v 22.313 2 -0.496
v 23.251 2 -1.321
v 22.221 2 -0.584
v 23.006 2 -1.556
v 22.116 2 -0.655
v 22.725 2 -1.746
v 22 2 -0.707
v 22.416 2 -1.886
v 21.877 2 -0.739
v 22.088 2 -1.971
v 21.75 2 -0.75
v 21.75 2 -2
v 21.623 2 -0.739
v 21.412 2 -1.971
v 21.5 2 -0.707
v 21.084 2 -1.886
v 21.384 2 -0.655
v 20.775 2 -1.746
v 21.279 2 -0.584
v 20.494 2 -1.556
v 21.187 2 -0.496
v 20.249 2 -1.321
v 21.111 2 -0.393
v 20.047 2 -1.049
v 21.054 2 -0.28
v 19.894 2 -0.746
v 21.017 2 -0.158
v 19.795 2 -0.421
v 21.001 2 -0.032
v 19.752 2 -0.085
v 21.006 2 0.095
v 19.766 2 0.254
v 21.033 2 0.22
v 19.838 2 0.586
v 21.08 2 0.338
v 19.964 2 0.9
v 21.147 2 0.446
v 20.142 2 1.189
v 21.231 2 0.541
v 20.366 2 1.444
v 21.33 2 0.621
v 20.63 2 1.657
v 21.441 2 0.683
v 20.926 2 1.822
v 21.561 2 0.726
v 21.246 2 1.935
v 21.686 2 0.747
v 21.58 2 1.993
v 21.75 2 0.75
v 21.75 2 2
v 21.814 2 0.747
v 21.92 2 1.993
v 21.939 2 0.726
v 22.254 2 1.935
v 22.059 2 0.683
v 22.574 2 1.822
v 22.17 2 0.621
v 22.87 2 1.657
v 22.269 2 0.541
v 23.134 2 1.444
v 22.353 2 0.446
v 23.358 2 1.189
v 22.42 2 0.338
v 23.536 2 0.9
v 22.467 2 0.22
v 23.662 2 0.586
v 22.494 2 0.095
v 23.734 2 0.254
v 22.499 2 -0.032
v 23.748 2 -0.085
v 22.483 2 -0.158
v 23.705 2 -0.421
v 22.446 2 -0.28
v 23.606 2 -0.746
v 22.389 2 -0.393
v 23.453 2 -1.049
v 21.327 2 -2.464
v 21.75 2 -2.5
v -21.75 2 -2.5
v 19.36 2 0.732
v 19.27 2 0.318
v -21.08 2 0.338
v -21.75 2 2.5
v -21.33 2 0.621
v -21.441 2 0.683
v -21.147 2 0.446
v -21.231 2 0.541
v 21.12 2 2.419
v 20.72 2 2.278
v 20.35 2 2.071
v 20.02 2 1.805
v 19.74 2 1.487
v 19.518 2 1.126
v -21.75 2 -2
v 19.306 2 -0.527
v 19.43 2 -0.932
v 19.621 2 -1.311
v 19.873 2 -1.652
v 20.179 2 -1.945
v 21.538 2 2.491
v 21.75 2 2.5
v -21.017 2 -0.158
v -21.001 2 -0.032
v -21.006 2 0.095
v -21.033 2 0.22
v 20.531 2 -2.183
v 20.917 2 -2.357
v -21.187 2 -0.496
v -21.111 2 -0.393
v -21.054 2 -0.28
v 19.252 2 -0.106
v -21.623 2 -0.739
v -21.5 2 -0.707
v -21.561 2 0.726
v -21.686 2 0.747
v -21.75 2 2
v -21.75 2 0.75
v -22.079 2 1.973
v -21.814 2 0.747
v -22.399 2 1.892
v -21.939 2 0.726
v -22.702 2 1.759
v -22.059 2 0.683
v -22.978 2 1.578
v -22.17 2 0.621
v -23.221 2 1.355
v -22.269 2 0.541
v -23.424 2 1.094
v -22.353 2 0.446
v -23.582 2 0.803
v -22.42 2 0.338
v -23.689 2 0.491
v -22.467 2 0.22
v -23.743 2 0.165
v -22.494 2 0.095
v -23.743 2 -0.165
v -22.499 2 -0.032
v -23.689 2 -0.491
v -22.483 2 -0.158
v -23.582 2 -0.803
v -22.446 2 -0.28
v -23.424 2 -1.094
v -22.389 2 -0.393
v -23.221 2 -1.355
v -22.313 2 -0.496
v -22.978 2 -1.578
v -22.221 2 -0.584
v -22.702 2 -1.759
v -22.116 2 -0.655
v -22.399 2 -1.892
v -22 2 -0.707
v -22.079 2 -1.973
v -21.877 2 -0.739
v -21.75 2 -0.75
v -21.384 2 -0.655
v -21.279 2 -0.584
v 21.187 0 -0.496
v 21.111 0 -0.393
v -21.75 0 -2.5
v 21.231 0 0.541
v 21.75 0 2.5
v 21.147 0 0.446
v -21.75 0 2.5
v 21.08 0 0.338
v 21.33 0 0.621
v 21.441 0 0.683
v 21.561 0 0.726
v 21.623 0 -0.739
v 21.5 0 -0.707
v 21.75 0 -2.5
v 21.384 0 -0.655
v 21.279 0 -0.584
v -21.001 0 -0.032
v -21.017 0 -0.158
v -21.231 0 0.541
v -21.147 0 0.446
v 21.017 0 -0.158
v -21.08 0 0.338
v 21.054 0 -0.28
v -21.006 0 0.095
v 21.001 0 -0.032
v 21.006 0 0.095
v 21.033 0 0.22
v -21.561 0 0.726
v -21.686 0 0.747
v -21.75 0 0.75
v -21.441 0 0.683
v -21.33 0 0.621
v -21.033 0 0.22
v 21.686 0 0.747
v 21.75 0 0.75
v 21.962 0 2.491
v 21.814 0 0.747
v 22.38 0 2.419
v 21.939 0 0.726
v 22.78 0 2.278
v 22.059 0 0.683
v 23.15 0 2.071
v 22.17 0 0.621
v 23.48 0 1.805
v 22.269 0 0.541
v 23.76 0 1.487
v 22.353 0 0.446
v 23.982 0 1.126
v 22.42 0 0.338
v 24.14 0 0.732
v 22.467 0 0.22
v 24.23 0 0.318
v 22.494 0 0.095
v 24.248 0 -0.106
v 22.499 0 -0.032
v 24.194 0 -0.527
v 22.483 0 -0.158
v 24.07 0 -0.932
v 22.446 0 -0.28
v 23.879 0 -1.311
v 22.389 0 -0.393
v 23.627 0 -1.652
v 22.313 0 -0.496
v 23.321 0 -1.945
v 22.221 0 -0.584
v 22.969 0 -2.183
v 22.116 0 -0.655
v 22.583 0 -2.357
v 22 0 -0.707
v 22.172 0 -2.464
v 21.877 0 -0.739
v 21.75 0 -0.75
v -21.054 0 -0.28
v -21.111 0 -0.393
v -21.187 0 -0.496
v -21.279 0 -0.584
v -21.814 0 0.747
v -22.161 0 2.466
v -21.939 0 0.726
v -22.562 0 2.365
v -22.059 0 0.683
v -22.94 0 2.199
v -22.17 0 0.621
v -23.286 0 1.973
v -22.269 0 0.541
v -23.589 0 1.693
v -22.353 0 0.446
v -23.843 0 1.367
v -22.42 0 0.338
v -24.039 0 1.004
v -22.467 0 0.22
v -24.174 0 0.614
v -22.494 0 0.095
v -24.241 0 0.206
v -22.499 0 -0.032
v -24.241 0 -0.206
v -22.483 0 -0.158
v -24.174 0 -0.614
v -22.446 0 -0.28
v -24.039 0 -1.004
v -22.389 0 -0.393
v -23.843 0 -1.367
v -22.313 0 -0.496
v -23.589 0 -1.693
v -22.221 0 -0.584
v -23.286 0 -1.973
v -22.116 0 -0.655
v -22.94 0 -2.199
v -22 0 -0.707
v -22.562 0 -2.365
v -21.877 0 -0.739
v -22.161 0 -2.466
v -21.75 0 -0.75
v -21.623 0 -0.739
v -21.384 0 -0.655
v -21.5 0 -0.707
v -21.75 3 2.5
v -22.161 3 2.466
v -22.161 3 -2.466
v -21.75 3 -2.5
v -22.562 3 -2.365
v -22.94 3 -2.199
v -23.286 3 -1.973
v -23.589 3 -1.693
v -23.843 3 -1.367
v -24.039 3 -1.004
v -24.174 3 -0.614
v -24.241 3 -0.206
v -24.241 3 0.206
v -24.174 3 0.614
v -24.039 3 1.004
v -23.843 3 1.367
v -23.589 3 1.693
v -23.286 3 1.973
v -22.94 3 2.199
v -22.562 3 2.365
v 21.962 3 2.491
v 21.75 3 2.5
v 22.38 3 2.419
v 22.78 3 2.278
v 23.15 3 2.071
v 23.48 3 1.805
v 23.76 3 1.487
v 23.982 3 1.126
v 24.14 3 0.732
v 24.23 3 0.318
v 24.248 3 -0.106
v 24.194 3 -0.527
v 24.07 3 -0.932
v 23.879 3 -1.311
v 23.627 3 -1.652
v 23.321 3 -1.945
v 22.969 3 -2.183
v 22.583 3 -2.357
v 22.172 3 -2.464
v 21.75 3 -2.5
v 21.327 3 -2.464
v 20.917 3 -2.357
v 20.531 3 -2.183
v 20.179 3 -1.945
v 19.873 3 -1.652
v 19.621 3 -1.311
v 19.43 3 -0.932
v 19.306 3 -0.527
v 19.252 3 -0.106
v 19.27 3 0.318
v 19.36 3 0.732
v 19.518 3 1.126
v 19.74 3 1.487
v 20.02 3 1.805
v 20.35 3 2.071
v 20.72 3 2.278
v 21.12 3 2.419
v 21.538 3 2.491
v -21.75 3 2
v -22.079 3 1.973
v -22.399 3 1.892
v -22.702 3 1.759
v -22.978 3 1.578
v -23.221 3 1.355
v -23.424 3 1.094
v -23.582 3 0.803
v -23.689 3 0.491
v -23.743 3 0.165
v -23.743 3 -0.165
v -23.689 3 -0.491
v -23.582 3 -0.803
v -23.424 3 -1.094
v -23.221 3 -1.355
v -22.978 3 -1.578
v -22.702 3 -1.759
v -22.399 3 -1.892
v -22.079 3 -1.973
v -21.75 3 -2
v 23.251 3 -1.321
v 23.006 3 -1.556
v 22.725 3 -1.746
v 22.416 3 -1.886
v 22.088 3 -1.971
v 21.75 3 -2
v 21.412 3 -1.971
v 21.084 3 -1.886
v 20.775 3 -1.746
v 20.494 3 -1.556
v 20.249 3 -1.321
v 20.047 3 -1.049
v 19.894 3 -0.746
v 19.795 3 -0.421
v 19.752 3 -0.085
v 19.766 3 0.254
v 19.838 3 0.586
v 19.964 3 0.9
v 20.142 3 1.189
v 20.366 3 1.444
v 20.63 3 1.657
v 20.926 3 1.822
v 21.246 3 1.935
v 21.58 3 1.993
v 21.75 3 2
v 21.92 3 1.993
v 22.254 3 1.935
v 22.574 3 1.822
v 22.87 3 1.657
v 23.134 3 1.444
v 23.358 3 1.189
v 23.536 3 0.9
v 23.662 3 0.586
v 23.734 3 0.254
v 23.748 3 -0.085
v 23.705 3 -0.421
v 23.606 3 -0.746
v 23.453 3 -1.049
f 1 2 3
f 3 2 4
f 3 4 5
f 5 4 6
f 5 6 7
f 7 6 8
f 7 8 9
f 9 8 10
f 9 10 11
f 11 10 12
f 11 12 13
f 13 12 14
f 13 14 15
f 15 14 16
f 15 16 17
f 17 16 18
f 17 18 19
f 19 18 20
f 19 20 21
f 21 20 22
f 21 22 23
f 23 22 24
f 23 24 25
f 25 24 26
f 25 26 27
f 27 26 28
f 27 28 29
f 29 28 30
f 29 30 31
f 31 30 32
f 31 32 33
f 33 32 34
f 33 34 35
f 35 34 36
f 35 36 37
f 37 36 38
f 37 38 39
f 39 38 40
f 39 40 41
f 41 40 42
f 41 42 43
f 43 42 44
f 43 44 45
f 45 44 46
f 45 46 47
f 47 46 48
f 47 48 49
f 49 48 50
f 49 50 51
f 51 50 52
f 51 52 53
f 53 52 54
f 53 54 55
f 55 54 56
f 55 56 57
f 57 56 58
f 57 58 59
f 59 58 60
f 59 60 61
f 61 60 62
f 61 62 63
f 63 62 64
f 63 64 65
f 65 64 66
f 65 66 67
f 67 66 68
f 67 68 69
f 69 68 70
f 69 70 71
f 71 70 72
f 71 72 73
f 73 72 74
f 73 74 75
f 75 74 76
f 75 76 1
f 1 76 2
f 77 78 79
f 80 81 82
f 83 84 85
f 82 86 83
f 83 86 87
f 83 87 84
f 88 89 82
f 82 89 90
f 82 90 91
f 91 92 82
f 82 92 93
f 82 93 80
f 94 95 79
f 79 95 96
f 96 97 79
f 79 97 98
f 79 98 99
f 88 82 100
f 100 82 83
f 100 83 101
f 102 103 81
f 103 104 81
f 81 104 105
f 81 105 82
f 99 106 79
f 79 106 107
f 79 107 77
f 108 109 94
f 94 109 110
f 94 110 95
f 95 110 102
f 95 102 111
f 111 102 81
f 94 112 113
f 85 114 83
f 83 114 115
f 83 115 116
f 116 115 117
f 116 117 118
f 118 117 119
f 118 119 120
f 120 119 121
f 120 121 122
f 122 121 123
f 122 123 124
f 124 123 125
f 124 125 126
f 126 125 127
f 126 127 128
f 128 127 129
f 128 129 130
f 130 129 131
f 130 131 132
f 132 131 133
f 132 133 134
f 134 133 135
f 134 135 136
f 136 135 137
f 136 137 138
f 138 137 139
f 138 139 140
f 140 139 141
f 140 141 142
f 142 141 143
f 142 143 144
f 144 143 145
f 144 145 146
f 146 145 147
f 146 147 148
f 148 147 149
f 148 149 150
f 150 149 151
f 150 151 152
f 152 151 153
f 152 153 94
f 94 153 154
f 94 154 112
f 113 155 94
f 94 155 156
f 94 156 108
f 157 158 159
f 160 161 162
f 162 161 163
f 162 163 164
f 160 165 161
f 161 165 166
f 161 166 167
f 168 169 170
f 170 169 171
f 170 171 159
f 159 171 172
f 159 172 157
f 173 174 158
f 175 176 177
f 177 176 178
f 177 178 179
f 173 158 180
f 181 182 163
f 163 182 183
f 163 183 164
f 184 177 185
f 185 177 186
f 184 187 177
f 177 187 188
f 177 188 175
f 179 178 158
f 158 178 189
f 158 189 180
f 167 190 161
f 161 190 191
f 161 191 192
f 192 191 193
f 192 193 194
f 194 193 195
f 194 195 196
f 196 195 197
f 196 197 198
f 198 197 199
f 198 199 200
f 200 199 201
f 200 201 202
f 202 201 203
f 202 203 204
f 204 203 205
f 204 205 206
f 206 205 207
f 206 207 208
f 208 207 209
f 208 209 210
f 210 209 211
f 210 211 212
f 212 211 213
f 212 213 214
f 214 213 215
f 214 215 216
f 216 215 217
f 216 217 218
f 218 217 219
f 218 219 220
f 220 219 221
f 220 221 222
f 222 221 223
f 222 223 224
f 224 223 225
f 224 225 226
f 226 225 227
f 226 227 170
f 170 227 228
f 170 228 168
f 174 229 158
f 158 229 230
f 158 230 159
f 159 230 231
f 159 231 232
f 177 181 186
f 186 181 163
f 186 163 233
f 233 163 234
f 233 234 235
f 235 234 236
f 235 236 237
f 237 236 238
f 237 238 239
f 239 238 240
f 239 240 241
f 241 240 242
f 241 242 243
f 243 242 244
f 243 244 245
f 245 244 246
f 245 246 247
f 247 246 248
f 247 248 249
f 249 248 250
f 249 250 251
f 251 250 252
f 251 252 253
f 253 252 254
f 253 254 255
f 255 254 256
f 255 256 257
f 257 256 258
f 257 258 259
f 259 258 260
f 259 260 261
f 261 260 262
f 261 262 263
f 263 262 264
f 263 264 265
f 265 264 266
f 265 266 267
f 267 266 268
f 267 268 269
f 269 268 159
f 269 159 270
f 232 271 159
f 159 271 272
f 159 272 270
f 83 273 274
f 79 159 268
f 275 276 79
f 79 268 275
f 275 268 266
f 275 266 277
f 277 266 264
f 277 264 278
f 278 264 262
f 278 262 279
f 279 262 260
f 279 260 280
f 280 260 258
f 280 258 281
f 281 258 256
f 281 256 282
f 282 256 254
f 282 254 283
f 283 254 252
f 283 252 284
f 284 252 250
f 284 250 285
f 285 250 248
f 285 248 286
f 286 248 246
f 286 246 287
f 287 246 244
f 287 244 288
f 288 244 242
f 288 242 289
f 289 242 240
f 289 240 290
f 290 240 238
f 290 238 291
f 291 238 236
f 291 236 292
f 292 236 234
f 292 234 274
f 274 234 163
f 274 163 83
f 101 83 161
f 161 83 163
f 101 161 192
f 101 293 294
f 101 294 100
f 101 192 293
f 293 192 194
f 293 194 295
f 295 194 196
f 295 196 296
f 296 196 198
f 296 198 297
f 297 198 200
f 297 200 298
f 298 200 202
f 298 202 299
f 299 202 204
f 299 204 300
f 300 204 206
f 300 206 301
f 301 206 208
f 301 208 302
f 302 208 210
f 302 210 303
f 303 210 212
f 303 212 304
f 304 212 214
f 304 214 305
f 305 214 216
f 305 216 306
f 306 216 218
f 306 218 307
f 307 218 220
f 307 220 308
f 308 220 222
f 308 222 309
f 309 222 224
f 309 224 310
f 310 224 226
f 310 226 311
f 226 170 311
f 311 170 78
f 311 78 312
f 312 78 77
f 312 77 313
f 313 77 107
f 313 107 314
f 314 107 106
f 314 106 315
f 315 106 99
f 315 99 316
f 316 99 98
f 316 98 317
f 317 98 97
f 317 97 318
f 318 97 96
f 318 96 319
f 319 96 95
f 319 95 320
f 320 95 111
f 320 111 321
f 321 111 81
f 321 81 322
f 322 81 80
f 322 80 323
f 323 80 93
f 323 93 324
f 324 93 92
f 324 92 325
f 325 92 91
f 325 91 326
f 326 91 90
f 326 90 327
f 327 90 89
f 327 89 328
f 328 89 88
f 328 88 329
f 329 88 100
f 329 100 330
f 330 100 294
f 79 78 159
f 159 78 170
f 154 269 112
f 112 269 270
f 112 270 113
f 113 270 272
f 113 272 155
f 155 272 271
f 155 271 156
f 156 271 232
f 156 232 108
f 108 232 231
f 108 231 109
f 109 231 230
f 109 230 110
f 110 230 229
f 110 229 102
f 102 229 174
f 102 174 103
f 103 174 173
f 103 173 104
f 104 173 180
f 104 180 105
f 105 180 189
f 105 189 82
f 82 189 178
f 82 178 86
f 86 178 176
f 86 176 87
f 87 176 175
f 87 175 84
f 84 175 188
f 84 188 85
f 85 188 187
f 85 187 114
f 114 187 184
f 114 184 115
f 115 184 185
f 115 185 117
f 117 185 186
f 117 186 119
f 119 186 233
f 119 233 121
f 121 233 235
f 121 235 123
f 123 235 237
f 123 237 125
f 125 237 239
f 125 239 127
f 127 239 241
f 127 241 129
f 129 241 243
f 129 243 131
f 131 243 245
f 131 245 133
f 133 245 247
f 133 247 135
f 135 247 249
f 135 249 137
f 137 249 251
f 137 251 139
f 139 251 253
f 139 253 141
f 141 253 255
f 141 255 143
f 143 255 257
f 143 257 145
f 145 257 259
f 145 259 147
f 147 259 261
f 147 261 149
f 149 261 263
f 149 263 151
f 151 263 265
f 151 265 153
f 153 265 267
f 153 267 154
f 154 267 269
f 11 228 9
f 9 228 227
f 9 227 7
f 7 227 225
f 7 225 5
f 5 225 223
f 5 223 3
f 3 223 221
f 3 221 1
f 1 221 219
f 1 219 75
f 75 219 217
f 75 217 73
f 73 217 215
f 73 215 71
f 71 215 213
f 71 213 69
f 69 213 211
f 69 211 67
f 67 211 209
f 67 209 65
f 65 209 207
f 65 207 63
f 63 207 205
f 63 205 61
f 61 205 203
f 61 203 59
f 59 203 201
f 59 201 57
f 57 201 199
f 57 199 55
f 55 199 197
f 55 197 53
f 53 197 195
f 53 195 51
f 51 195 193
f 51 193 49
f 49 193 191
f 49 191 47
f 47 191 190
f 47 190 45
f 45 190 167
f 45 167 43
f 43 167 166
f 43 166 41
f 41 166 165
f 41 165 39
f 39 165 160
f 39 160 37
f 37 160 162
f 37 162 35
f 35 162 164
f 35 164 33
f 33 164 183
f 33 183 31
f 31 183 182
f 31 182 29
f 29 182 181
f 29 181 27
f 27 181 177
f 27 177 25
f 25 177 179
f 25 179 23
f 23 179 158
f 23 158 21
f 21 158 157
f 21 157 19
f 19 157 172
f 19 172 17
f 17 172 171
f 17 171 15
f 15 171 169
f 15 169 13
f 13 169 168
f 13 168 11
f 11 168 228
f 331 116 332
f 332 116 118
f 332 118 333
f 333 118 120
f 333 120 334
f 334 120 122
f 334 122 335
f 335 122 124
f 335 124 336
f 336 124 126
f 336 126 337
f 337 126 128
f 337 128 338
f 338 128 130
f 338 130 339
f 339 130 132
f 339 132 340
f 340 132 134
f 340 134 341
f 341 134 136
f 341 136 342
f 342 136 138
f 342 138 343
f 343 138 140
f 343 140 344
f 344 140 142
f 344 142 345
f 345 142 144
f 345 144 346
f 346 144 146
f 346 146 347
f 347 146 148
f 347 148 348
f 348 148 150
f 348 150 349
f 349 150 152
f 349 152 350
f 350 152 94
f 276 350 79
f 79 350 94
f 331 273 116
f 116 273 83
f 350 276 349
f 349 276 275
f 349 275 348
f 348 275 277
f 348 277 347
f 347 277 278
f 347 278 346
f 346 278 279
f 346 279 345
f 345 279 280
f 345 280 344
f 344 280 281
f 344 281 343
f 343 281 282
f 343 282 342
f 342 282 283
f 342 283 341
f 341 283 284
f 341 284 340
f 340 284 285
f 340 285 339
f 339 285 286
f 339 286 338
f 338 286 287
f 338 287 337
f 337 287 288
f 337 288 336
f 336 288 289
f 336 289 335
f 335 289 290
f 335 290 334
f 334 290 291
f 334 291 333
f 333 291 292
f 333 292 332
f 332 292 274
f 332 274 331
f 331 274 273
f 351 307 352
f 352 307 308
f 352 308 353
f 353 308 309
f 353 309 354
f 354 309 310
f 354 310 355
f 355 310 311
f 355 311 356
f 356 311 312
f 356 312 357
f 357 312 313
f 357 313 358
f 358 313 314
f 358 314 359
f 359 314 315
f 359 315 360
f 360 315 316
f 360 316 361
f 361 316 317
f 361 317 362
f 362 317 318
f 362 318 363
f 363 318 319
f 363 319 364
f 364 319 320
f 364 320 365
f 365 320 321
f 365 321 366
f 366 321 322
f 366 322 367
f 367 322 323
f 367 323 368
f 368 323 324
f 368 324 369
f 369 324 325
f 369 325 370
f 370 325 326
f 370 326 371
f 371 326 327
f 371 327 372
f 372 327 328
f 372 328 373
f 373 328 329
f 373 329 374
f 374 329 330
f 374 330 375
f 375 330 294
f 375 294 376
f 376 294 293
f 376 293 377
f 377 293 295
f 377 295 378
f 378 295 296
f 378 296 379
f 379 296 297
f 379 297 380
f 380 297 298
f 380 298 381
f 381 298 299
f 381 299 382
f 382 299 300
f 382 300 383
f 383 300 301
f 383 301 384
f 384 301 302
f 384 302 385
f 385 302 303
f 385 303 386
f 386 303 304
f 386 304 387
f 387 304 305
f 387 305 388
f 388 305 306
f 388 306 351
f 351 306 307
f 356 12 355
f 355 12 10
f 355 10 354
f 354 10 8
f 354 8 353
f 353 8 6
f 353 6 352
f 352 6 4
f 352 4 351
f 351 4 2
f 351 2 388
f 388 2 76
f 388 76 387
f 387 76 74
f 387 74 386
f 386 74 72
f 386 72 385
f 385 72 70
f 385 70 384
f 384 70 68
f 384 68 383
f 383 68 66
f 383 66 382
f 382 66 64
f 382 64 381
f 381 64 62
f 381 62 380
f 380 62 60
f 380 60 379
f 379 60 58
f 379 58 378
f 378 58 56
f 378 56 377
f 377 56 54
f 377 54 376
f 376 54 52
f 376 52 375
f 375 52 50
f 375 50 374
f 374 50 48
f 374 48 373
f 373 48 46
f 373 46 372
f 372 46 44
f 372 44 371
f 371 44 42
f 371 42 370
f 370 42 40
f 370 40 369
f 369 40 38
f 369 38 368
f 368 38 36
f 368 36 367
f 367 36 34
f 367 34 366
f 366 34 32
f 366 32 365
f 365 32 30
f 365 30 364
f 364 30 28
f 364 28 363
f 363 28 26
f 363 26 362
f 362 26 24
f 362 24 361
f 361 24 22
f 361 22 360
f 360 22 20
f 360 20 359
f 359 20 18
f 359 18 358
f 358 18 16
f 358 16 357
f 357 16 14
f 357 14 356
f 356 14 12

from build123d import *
from build123d.topology import SkipClean

# Parameters (mm, degrees)
SKETCH2_R           = 0.75
BOSS_EXTRUDE1_DEPTH = 2
SKETCH3_R           = 2.5
SKETCH3_R_2         = 2
BOSS_EXTRUDE2_DEPTH = 1


with BuildPart() as part:
    # Sketch2 → Boss-Extrude1 (new body)
    with BuildSketch(Plane(origin=(0, 0, 0), x_dir=(1, 0, 0), z_dir=(0, 1, 0))):
        with BuildLine():
            Line((-21.75, 2.5), (21.75, 2.5))
            ThreePointArc((21.75, 2.5), (24.25, 0), (21.75, -2.5))
            Line((21.75, -2.5), (-21.75, -2.5))
            ThreePointArc((-21.75, -2.5), (-24.25, 0), (-21.75, 2.5))
        make_face()
        with Locations((-21.75, 0)):
            Circle(SKETCH2_R, mode=Mode.SUBTRACT)
        with Locations((21.75, 0)):
            Circle(SKETCH2_R, mode=Mode.SUBTRACT)
    extrude(amount=BOSS_EXTRUDE1_DEPTH)

    # Sketch3 → Boss-Extrude2 (add)
    # profile 1 of 2: a face of its own
    with SkipClean():  # the faces are left unmerged after this step: merging them gives an invalid solid
        with BuildSketch(Plane(origin=(0, 2, 0), x_dir=(1, 0, 0), z_dir=(0, 1, 0))):
            with Locations((21.75, 0)):
                Circle(SKETCH3_R)
            with Locations((21.75, 0)):
                Circle(SKETCH3_R_2, mode=Mode.SUBTRACT)
        # profile 2 of 2: a face of its own
        with BuildSketch(Plane(origin=(0, 2, 0), x_dir=(1, 0, 0), z_dir=(0, 1, 0))):
            with BuildLine():
                Line((-21.75, 2.5), (-21.75, 2))
                ThreePointArc((-21.75, 2), (-23.75, 0), (-21.75, -2))
                Line((-21.75, -2), (-21.75, -2.5))
                ThreePointArc((-21.75, -2.5), (-24.25, 0), (-21.75, 2.5))
            make_face()
        extrude(amount=BOSS_EXTRUDE2_DEPTH)
    add(part.part.scale(1), mode=Mode.REPLACE)  # the faces are merged on a copy


solid = part.part
